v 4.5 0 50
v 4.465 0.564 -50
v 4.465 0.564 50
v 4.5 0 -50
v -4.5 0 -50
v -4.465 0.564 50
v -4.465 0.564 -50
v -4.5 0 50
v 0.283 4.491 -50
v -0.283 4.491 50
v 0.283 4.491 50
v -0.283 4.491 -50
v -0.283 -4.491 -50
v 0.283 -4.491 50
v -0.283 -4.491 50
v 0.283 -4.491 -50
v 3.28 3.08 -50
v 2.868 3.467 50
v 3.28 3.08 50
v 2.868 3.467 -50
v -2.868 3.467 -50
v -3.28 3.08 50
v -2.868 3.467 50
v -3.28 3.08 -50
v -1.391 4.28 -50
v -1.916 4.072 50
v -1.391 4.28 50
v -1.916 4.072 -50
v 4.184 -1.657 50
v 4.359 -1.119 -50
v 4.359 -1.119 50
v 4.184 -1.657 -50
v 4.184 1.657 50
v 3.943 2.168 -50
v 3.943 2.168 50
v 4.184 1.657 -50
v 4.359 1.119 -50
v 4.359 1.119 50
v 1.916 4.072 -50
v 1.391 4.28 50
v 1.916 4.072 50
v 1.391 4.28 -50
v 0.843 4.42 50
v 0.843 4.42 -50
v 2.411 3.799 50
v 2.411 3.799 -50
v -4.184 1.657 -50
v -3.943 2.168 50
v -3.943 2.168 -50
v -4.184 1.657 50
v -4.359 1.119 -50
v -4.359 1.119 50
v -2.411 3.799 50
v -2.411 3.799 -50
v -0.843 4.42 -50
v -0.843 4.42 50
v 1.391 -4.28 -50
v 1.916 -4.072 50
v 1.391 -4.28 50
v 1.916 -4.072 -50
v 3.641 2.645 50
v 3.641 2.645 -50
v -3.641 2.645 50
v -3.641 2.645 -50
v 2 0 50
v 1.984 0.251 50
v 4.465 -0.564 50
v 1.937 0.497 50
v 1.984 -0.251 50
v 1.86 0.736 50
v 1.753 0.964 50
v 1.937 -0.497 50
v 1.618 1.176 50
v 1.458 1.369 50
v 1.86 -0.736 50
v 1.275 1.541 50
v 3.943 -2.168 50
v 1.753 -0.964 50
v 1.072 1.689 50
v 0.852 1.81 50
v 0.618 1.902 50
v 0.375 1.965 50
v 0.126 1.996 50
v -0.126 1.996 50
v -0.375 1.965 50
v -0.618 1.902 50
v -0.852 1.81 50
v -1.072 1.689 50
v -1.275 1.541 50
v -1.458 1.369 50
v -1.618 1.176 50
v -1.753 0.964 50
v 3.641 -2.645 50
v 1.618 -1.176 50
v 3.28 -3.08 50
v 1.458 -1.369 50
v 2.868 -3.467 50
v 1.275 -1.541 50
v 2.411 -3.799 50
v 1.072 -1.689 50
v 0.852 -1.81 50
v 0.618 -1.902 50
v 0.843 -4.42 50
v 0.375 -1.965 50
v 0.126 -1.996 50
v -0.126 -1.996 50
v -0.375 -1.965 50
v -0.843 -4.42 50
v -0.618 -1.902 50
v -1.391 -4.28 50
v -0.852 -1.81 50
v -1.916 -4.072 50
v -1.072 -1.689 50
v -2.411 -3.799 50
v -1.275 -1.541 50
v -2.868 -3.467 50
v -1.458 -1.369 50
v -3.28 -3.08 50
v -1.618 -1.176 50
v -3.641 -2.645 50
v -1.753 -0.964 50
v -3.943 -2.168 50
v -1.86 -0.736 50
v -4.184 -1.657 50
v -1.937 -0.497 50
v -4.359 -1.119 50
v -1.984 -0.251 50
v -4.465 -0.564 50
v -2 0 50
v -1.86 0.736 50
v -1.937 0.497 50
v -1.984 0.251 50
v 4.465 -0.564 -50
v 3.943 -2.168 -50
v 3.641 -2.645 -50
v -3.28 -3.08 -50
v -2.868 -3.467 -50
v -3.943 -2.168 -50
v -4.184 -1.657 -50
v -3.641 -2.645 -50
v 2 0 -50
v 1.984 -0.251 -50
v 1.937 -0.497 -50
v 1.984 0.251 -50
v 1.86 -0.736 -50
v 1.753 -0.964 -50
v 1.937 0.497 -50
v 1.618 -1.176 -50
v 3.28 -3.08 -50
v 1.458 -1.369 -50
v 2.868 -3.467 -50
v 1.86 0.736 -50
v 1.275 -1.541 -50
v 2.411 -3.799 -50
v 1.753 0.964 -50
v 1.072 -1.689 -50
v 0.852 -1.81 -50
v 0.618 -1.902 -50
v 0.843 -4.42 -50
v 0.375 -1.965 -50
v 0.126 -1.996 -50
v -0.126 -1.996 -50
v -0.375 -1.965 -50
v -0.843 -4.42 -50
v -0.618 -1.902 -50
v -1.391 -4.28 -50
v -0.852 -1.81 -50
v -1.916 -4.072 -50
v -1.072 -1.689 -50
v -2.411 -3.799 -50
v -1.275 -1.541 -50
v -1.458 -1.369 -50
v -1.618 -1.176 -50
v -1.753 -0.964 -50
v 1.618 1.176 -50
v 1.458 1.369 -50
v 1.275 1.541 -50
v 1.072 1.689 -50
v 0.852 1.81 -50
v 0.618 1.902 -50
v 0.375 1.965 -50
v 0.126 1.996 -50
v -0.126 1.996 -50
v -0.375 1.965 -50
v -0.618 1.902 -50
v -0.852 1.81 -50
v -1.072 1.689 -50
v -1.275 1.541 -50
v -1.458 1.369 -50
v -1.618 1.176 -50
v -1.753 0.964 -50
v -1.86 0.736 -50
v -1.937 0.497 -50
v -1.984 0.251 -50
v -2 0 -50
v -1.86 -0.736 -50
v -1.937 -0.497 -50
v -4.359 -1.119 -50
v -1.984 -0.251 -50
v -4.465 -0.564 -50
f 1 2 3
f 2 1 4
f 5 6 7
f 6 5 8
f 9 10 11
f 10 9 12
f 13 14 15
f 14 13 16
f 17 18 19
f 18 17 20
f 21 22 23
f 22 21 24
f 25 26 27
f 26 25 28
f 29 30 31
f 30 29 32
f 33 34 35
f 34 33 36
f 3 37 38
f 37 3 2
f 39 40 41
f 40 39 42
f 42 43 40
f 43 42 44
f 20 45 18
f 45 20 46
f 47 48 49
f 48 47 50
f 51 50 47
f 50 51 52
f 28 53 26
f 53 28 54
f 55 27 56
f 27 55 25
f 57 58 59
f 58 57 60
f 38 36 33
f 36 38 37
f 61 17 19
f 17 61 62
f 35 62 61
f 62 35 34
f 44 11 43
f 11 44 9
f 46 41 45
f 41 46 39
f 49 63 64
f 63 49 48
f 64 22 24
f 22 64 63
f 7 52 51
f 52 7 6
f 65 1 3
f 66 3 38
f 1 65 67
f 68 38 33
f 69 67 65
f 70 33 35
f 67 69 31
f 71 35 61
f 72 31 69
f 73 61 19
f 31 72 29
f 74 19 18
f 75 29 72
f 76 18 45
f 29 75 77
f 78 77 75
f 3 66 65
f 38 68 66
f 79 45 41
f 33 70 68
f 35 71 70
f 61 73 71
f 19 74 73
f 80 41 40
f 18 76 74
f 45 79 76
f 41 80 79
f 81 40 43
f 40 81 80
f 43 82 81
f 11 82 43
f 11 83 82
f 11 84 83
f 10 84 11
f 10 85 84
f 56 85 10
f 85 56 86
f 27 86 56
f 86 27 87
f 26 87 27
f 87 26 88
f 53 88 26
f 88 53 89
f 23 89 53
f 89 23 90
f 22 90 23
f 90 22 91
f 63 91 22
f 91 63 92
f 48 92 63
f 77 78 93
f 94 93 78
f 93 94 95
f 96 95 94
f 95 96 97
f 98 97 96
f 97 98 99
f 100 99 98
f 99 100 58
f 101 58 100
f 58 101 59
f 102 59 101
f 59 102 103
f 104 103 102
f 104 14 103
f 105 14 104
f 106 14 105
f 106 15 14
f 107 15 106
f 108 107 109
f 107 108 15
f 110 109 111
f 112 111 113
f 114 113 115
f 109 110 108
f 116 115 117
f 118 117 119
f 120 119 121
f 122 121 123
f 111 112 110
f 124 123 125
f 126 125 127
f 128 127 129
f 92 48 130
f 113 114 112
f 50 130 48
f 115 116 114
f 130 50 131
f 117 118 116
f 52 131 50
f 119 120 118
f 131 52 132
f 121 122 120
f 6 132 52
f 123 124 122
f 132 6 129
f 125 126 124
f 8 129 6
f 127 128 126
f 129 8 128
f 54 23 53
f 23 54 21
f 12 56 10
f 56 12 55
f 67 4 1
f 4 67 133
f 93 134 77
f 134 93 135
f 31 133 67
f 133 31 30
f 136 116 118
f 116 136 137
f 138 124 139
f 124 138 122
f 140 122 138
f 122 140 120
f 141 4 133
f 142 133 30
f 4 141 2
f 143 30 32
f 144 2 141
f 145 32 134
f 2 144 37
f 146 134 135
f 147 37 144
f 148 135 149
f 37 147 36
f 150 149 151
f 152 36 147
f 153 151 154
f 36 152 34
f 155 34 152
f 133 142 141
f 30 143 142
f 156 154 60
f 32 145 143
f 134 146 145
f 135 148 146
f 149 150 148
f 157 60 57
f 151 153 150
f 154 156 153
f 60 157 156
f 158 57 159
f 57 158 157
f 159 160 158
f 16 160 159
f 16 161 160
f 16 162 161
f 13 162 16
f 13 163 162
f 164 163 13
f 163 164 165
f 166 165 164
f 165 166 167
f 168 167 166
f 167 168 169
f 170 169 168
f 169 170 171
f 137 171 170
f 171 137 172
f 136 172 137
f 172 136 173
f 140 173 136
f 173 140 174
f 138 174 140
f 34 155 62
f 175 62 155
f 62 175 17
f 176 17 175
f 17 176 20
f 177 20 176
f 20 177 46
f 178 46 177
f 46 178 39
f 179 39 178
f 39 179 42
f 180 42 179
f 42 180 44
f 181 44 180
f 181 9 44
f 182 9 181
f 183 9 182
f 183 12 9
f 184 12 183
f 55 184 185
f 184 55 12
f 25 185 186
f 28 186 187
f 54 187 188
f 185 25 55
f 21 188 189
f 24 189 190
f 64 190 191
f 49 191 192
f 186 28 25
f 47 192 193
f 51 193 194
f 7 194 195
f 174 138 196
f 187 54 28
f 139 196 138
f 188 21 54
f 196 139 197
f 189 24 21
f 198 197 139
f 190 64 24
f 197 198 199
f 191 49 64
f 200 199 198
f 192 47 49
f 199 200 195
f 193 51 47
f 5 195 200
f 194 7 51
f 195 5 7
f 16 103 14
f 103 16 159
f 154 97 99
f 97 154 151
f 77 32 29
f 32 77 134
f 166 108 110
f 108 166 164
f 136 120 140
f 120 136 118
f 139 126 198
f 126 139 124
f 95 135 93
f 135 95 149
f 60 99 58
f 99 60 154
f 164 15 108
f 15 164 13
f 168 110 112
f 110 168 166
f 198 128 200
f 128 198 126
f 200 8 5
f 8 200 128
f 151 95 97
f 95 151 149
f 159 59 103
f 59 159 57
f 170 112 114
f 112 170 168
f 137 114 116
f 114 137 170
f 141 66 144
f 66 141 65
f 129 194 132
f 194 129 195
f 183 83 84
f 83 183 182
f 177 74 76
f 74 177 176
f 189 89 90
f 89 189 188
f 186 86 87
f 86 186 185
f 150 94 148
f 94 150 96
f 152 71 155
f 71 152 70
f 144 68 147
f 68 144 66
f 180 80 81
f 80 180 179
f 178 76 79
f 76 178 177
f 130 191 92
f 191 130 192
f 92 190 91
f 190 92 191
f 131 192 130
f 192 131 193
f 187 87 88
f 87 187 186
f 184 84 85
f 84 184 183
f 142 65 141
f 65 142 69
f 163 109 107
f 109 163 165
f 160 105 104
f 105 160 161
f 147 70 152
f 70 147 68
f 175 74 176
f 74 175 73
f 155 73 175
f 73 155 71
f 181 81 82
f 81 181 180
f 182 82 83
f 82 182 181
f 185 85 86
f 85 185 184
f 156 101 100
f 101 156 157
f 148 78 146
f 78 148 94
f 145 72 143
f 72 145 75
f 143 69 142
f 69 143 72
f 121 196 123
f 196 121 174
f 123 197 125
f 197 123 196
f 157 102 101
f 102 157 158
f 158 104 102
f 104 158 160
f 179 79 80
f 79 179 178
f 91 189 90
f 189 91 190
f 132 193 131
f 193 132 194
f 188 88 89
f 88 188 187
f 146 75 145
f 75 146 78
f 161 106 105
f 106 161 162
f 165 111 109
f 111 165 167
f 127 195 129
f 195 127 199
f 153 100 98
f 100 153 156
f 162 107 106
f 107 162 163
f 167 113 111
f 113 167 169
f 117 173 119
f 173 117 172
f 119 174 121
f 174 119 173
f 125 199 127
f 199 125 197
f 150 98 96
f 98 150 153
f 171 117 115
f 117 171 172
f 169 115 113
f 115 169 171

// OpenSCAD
$fn = 50;


difference() {
	union() {
		translate(v = [0, 0, -50.0000000000]) {
			cylinder(h = 100, r = 4.5000000000);
		}
	}
	union() {
		translate(v = [0, 0, -100.0000000000]) {
			cylinder(h = 200, r = 2);
		}
	}
}
